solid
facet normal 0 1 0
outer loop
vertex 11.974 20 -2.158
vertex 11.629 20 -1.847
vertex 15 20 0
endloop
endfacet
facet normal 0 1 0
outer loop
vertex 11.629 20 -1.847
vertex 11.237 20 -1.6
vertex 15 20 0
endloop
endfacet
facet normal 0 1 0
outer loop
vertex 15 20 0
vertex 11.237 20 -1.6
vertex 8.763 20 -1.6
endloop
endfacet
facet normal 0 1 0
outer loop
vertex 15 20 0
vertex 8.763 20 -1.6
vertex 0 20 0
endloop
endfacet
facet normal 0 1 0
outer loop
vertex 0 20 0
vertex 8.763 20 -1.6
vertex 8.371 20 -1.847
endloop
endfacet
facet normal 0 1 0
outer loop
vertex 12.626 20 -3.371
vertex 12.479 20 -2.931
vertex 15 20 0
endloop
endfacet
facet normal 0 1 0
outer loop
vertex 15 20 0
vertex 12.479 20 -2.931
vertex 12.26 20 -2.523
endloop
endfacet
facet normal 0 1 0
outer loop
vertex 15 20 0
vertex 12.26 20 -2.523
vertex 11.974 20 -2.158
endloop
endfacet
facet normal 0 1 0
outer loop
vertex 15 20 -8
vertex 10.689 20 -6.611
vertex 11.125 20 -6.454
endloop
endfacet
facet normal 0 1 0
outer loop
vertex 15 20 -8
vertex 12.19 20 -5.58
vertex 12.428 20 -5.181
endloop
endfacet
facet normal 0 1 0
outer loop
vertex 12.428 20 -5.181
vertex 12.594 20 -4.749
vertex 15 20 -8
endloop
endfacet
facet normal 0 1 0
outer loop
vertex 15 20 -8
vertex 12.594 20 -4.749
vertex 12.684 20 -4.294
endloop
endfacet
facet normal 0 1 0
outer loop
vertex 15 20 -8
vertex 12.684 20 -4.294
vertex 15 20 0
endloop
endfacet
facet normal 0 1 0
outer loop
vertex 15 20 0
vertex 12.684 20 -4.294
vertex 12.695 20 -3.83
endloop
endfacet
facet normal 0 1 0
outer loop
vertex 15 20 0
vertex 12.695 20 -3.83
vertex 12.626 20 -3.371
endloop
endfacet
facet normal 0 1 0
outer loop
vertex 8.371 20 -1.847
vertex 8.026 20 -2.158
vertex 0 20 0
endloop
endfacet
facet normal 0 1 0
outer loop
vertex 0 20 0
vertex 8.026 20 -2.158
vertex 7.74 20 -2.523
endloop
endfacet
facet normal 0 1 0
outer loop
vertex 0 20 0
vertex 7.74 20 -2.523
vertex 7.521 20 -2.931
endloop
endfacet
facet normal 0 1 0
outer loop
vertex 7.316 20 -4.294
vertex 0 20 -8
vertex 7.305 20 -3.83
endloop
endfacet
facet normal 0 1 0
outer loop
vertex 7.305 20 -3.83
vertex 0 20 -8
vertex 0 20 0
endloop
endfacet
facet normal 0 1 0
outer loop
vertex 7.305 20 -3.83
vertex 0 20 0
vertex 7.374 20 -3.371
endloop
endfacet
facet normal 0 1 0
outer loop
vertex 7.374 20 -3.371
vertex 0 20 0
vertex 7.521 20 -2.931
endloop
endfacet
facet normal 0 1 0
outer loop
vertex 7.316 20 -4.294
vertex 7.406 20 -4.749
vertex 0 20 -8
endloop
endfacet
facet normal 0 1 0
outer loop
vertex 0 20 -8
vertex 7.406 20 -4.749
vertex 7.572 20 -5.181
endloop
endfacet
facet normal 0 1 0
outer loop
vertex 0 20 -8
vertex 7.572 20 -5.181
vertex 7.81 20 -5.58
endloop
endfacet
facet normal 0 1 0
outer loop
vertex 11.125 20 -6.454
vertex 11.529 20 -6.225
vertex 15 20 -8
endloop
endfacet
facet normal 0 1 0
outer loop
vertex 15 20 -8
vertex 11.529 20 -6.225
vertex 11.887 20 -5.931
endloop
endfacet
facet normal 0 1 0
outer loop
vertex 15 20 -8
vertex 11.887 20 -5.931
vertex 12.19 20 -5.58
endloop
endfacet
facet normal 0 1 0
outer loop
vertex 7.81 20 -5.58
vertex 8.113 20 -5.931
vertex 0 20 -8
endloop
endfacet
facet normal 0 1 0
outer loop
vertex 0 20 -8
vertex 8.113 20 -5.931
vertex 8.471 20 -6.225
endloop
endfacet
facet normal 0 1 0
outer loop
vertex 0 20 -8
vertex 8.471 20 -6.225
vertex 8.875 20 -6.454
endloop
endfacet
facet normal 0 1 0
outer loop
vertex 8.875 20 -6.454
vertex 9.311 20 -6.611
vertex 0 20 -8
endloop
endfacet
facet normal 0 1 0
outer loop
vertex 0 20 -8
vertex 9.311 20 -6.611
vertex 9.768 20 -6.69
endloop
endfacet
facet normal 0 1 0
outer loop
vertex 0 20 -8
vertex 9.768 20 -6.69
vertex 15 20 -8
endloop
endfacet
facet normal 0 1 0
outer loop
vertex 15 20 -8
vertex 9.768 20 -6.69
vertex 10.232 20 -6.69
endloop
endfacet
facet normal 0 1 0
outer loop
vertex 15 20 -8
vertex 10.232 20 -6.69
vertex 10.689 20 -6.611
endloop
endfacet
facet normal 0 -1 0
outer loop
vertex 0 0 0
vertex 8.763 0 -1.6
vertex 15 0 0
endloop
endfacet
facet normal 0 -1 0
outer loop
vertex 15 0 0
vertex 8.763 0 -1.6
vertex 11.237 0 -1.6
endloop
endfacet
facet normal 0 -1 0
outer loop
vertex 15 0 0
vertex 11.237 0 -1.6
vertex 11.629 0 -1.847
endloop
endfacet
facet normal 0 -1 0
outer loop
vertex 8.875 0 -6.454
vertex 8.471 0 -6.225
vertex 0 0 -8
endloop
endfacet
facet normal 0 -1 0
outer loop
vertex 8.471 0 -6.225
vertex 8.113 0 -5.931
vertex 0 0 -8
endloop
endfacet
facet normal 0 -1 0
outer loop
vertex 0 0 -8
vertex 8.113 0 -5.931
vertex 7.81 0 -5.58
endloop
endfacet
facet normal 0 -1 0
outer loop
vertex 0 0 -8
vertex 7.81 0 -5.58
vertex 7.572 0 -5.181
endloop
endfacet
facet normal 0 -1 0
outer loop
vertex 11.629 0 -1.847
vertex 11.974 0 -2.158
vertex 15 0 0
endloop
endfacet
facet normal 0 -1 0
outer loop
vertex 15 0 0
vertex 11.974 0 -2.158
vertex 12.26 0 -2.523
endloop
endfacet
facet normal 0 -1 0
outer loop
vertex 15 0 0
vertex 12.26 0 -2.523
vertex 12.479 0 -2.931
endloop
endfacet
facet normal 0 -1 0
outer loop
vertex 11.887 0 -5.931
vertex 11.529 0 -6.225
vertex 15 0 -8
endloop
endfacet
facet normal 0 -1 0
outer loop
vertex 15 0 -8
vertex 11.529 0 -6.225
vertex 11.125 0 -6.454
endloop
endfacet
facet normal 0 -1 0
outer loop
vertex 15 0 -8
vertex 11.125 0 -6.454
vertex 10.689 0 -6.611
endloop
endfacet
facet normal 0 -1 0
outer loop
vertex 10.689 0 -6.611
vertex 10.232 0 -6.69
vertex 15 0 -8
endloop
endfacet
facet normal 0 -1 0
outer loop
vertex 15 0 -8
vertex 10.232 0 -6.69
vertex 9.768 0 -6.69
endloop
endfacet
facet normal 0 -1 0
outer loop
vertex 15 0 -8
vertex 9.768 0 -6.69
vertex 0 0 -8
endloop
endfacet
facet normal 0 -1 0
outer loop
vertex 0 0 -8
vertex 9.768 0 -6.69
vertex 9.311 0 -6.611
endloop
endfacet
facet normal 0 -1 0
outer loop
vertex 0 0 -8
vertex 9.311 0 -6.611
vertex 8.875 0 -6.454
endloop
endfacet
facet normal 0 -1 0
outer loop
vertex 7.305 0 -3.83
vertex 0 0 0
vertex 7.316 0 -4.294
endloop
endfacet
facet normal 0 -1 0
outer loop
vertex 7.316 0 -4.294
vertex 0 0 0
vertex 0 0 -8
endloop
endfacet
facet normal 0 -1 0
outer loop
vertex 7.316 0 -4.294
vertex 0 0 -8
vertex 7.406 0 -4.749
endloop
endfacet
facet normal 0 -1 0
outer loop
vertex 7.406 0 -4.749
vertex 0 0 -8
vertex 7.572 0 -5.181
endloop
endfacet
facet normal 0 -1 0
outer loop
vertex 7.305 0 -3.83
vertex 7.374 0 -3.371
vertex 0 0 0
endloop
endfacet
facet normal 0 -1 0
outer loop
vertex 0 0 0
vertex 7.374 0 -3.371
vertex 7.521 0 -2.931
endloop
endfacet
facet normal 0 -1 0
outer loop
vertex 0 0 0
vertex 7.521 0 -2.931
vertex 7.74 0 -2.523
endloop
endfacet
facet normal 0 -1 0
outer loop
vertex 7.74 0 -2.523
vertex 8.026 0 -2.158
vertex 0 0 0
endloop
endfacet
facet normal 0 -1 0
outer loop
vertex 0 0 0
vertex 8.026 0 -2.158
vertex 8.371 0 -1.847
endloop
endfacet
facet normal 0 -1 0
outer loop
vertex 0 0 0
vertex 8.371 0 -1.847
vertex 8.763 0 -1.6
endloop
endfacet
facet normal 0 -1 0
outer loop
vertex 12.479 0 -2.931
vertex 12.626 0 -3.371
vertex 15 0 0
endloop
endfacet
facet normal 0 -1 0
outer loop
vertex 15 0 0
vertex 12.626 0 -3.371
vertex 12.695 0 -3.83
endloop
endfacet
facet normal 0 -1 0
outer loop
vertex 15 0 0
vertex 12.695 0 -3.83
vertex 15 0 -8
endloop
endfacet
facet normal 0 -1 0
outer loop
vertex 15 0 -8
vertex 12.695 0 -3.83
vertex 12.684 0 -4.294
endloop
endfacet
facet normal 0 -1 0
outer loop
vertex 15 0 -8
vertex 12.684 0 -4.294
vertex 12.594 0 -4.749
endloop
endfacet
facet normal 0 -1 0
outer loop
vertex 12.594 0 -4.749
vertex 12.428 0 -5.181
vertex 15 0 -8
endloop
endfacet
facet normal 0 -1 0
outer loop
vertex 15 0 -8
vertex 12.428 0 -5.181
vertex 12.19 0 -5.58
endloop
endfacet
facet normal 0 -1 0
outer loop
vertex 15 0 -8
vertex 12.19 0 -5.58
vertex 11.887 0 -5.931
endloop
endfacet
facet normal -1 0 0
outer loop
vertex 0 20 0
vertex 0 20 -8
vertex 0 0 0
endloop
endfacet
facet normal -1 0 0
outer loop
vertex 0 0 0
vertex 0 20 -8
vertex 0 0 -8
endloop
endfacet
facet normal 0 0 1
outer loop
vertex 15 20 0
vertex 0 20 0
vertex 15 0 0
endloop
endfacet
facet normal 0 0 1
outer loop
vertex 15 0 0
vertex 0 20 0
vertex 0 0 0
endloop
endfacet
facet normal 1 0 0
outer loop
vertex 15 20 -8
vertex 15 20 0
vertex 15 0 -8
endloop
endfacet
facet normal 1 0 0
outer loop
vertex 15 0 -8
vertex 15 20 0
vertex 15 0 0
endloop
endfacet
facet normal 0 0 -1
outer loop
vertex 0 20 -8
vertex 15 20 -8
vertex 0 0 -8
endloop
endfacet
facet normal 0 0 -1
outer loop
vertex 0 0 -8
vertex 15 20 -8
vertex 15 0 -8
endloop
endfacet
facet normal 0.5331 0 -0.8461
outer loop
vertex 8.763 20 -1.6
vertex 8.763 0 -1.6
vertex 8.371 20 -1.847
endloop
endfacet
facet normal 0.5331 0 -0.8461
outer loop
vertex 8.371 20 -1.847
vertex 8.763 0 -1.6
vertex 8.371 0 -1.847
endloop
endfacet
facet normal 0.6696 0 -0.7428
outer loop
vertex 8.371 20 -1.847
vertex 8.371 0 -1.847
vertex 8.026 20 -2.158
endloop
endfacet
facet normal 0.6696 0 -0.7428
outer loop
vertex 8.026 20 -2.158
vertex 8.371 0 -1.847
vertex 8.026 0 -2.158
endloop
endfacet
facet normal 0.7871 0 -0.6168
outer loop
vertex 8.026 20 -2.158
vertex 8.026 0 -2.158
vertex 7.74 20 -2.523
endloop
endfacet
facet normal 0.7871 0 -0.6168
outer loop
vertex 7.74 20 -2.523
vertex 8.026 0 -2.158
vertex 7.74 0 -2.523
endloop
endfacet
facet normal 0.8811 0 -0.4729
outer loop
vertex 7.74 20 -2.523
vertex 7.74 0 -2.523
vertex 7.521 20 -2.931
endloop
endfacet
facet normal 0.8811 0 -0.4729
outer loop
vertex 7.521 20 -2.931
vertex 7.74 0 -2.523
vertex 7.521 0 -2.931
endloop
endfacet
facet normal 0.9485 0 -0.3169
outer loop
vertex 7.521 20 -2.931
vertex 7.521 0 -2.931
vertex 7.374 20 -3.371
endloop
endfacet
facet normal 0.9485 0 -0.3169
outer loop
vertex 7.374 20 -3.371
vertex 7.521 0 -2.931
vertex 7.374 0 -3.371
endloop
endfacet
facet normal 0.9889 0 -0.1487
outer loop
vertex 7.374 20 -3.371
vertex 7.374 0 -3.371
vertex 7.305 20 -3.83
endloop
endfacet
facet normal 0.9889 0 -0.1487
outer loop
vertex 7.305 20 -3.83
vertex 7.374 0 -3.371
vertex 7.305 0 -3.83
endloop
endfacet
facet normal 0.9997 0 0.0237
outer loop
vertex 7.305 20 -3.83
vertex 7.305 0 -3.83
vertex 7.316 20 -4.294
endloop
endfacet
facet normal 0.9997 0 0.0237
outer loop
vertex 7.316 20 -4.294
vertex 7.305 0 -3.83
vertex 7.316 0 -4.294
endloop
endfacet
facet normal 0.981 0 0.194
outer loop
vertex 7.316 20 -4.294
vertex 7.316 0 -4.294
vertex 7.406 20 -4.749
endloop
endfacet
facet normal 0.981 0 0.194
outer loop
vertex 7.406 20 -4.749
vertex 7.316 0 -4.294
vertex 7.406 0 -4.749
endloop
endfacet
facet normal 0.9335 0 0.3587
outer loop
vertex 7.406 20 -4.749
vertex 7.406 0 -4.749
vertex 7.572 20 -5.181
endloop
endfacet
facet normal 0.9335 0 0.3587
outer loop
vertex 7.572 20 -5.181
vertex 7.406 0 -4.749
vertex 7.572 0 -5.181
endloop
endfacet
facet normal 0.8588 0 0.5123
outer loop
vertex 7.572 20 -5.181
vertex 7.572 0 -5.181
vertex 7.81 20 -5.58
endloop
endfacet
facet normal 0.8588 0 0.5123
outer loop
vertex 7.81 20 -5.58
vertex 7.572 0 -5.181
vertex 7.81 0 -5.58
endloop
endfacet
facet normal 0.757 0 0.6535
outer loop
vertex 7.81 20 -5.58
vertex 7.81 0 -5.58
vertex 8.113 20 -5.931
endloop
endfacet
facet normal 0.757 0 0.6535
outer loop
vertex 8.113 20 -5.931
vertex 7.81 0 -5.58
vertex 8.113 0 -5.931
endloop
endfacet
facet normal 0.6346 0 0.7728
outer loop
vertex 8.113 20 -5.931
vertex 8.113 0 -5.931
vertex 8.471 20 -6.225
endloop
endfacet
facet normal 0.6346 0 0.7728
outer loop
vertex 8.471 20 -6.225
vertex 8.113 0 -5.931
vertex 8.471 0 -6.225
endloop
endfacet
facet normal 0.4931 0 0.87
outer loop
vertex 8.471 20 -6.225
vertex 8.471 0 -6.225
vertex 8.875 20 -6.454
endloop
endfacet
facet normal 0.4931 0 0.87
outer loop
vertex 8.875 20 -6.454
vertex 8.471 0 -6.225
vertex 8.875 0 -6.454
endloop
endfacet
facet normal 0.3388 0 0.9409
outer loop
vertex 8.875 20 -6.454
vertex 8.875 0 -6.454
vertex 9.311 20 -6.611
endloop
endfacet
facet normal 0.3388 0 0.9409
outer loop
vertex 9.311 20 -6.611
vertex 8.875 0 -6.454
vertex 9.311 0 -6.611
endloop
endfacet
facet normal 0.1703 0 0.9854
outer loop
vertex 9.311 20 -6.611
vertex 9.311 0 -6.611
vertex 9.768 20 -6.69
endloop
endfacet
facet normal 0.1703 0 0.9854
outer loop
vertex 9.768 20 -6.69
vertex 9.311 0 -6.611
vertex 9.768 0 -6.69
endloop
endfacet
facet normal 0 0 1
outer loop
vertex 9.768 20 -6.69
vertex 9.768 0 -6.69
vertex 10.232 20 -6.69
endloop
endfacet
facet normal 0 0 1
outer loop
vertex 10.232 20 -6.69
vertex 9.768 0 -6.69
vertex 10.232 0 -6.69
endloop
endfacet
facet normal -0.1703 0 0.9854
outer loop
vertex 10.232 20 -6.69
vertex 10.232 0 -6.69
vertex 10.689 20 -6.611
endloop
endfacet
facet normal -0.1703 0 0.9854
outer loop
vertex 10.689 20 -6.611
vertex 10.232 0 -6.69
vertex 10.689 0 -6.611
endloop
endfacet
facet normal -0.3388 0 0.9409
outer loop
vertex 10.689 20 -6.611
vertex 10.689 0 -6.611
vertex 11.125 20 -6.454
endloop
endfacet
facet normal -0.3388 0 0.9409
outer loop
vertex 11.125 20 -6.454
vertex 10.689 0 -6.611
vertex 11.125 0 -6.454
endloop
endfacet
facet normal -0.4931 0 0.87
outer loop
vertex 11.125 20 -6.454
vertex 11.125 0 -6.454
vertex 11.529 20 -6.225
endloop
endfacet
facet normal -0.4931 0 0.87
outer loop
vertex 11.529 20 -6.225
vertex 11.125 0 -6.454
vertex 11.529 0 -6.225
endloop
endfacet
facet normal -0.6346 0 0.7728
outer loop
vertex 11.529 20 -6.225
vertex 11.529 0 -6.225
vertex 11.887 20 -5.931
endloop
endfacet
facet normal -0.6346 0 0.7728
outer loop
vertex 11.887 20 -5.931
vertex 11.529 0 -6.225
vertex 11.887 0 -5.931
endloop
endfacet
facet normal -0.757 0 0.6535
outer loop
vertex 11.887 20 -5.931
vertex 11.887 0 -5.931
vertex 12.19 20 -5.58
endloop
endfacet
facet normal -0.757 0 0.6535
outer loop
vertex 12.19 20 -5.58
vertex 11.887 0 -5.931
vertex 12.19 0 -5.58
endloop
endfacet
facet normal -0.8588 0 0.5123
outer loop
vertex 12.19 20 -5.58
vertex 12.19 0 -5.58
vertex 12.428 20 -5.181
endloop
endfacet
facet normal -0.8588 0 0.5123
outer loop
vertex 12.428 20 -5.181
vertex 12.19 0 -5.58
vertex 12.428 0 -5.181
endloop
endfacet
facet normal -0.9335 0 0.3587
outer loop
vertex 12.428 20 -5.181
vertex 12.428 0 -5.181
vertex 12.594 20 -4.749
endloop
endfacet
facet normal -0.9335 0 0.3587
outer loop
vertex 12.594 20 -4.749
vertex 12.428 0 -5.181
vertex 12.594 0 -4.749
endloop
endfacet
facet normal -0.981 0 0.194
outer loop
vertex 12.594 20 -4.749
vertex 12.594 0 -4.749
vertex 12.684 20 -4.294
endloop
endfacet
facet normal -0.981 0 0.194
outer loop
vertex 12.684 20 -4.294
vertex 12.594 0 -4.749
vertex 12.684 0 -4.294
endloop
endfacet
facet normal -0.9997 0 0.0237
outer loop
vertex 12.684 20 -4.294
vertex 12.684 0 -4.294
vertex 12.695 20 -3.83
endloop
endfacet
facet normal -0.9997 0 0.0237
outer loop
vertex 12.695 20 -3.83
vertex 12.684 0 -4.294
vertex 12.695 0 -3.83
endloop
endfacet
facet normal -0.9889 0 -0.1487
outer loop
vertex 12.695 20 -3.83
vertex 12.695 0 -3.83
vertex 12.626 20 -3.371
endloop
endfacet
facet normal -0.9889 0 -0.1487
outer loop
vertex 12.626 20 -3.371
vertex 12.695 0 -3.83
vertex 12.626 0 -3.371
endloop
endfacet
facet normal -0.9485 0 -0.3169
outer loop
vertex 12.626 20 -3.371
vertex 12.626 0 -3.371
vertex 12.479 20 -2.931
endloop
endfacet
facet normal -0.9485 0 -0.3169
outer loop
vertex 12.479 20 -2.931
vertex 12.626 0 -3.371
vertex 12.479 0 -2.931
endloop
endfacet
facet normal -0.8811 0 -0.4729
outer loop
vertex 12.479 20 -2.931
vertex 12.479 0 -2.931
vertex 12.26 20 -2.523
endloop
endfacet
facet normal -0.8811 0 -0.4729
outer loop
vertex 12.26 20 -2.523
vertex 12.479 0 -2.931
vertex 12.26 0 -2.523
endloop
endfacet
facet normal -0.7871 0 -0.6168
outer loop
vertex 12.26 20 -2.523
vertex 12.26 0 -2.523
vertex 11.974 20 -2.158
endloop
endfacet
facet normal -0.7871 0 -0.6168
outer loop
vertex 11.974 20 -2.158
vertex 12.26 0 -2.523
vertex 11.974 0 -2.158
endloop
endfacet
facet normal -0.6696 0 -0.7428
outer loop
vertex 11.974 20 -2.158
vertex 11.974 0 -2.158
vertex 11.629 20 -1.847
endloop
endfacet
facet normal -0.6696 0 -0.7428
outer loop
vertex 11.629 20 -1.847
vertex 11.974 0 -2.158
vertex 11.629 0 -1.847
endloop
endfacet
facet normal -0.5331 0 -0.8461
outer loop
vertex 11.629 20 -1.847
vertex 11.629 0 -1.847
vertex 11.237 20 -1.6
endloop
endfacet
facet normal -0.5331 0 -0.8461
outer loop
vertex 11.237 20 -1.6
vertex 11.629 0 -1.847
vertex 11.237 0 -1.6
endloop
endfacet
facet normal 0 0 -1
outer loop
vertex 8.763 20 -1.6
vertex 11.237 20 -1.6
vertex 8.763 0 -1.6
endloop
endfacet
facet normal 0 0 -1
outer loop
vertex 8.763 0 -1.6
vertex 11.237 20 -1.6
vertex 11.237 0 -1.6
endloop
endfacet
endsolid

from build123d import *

# Parameters (mm, degrees)
SKETCH_1_W      = 15
SKETCH_1_H      = 8
EXTRUDE_1_DEPTH = 20


with BuildPart() as part:
    # 草图1 → 凸台-拉伸1 (new body)
    with BuildSketch(Plane(origin=(0, 0, 0), x_dir=(1, 0, 0), z_dir=(0, 1, 0))):
        with Locations((7.5, 4)):
            Rectangle(SKETCH_1_W, SKETCH_1_H)
        with BuildLine():
            Line((8.763068312, 1.6), (11.236931688, 1.6))
            ThreePointArc((11.236931688, 1.6), (10, 6.7), (8.763068312, 1.6))
        make_face(mode=Mode.SUBTRACT)
    extrude(amount=EXTRUDE_1_DEPTH)


solid = part.part
